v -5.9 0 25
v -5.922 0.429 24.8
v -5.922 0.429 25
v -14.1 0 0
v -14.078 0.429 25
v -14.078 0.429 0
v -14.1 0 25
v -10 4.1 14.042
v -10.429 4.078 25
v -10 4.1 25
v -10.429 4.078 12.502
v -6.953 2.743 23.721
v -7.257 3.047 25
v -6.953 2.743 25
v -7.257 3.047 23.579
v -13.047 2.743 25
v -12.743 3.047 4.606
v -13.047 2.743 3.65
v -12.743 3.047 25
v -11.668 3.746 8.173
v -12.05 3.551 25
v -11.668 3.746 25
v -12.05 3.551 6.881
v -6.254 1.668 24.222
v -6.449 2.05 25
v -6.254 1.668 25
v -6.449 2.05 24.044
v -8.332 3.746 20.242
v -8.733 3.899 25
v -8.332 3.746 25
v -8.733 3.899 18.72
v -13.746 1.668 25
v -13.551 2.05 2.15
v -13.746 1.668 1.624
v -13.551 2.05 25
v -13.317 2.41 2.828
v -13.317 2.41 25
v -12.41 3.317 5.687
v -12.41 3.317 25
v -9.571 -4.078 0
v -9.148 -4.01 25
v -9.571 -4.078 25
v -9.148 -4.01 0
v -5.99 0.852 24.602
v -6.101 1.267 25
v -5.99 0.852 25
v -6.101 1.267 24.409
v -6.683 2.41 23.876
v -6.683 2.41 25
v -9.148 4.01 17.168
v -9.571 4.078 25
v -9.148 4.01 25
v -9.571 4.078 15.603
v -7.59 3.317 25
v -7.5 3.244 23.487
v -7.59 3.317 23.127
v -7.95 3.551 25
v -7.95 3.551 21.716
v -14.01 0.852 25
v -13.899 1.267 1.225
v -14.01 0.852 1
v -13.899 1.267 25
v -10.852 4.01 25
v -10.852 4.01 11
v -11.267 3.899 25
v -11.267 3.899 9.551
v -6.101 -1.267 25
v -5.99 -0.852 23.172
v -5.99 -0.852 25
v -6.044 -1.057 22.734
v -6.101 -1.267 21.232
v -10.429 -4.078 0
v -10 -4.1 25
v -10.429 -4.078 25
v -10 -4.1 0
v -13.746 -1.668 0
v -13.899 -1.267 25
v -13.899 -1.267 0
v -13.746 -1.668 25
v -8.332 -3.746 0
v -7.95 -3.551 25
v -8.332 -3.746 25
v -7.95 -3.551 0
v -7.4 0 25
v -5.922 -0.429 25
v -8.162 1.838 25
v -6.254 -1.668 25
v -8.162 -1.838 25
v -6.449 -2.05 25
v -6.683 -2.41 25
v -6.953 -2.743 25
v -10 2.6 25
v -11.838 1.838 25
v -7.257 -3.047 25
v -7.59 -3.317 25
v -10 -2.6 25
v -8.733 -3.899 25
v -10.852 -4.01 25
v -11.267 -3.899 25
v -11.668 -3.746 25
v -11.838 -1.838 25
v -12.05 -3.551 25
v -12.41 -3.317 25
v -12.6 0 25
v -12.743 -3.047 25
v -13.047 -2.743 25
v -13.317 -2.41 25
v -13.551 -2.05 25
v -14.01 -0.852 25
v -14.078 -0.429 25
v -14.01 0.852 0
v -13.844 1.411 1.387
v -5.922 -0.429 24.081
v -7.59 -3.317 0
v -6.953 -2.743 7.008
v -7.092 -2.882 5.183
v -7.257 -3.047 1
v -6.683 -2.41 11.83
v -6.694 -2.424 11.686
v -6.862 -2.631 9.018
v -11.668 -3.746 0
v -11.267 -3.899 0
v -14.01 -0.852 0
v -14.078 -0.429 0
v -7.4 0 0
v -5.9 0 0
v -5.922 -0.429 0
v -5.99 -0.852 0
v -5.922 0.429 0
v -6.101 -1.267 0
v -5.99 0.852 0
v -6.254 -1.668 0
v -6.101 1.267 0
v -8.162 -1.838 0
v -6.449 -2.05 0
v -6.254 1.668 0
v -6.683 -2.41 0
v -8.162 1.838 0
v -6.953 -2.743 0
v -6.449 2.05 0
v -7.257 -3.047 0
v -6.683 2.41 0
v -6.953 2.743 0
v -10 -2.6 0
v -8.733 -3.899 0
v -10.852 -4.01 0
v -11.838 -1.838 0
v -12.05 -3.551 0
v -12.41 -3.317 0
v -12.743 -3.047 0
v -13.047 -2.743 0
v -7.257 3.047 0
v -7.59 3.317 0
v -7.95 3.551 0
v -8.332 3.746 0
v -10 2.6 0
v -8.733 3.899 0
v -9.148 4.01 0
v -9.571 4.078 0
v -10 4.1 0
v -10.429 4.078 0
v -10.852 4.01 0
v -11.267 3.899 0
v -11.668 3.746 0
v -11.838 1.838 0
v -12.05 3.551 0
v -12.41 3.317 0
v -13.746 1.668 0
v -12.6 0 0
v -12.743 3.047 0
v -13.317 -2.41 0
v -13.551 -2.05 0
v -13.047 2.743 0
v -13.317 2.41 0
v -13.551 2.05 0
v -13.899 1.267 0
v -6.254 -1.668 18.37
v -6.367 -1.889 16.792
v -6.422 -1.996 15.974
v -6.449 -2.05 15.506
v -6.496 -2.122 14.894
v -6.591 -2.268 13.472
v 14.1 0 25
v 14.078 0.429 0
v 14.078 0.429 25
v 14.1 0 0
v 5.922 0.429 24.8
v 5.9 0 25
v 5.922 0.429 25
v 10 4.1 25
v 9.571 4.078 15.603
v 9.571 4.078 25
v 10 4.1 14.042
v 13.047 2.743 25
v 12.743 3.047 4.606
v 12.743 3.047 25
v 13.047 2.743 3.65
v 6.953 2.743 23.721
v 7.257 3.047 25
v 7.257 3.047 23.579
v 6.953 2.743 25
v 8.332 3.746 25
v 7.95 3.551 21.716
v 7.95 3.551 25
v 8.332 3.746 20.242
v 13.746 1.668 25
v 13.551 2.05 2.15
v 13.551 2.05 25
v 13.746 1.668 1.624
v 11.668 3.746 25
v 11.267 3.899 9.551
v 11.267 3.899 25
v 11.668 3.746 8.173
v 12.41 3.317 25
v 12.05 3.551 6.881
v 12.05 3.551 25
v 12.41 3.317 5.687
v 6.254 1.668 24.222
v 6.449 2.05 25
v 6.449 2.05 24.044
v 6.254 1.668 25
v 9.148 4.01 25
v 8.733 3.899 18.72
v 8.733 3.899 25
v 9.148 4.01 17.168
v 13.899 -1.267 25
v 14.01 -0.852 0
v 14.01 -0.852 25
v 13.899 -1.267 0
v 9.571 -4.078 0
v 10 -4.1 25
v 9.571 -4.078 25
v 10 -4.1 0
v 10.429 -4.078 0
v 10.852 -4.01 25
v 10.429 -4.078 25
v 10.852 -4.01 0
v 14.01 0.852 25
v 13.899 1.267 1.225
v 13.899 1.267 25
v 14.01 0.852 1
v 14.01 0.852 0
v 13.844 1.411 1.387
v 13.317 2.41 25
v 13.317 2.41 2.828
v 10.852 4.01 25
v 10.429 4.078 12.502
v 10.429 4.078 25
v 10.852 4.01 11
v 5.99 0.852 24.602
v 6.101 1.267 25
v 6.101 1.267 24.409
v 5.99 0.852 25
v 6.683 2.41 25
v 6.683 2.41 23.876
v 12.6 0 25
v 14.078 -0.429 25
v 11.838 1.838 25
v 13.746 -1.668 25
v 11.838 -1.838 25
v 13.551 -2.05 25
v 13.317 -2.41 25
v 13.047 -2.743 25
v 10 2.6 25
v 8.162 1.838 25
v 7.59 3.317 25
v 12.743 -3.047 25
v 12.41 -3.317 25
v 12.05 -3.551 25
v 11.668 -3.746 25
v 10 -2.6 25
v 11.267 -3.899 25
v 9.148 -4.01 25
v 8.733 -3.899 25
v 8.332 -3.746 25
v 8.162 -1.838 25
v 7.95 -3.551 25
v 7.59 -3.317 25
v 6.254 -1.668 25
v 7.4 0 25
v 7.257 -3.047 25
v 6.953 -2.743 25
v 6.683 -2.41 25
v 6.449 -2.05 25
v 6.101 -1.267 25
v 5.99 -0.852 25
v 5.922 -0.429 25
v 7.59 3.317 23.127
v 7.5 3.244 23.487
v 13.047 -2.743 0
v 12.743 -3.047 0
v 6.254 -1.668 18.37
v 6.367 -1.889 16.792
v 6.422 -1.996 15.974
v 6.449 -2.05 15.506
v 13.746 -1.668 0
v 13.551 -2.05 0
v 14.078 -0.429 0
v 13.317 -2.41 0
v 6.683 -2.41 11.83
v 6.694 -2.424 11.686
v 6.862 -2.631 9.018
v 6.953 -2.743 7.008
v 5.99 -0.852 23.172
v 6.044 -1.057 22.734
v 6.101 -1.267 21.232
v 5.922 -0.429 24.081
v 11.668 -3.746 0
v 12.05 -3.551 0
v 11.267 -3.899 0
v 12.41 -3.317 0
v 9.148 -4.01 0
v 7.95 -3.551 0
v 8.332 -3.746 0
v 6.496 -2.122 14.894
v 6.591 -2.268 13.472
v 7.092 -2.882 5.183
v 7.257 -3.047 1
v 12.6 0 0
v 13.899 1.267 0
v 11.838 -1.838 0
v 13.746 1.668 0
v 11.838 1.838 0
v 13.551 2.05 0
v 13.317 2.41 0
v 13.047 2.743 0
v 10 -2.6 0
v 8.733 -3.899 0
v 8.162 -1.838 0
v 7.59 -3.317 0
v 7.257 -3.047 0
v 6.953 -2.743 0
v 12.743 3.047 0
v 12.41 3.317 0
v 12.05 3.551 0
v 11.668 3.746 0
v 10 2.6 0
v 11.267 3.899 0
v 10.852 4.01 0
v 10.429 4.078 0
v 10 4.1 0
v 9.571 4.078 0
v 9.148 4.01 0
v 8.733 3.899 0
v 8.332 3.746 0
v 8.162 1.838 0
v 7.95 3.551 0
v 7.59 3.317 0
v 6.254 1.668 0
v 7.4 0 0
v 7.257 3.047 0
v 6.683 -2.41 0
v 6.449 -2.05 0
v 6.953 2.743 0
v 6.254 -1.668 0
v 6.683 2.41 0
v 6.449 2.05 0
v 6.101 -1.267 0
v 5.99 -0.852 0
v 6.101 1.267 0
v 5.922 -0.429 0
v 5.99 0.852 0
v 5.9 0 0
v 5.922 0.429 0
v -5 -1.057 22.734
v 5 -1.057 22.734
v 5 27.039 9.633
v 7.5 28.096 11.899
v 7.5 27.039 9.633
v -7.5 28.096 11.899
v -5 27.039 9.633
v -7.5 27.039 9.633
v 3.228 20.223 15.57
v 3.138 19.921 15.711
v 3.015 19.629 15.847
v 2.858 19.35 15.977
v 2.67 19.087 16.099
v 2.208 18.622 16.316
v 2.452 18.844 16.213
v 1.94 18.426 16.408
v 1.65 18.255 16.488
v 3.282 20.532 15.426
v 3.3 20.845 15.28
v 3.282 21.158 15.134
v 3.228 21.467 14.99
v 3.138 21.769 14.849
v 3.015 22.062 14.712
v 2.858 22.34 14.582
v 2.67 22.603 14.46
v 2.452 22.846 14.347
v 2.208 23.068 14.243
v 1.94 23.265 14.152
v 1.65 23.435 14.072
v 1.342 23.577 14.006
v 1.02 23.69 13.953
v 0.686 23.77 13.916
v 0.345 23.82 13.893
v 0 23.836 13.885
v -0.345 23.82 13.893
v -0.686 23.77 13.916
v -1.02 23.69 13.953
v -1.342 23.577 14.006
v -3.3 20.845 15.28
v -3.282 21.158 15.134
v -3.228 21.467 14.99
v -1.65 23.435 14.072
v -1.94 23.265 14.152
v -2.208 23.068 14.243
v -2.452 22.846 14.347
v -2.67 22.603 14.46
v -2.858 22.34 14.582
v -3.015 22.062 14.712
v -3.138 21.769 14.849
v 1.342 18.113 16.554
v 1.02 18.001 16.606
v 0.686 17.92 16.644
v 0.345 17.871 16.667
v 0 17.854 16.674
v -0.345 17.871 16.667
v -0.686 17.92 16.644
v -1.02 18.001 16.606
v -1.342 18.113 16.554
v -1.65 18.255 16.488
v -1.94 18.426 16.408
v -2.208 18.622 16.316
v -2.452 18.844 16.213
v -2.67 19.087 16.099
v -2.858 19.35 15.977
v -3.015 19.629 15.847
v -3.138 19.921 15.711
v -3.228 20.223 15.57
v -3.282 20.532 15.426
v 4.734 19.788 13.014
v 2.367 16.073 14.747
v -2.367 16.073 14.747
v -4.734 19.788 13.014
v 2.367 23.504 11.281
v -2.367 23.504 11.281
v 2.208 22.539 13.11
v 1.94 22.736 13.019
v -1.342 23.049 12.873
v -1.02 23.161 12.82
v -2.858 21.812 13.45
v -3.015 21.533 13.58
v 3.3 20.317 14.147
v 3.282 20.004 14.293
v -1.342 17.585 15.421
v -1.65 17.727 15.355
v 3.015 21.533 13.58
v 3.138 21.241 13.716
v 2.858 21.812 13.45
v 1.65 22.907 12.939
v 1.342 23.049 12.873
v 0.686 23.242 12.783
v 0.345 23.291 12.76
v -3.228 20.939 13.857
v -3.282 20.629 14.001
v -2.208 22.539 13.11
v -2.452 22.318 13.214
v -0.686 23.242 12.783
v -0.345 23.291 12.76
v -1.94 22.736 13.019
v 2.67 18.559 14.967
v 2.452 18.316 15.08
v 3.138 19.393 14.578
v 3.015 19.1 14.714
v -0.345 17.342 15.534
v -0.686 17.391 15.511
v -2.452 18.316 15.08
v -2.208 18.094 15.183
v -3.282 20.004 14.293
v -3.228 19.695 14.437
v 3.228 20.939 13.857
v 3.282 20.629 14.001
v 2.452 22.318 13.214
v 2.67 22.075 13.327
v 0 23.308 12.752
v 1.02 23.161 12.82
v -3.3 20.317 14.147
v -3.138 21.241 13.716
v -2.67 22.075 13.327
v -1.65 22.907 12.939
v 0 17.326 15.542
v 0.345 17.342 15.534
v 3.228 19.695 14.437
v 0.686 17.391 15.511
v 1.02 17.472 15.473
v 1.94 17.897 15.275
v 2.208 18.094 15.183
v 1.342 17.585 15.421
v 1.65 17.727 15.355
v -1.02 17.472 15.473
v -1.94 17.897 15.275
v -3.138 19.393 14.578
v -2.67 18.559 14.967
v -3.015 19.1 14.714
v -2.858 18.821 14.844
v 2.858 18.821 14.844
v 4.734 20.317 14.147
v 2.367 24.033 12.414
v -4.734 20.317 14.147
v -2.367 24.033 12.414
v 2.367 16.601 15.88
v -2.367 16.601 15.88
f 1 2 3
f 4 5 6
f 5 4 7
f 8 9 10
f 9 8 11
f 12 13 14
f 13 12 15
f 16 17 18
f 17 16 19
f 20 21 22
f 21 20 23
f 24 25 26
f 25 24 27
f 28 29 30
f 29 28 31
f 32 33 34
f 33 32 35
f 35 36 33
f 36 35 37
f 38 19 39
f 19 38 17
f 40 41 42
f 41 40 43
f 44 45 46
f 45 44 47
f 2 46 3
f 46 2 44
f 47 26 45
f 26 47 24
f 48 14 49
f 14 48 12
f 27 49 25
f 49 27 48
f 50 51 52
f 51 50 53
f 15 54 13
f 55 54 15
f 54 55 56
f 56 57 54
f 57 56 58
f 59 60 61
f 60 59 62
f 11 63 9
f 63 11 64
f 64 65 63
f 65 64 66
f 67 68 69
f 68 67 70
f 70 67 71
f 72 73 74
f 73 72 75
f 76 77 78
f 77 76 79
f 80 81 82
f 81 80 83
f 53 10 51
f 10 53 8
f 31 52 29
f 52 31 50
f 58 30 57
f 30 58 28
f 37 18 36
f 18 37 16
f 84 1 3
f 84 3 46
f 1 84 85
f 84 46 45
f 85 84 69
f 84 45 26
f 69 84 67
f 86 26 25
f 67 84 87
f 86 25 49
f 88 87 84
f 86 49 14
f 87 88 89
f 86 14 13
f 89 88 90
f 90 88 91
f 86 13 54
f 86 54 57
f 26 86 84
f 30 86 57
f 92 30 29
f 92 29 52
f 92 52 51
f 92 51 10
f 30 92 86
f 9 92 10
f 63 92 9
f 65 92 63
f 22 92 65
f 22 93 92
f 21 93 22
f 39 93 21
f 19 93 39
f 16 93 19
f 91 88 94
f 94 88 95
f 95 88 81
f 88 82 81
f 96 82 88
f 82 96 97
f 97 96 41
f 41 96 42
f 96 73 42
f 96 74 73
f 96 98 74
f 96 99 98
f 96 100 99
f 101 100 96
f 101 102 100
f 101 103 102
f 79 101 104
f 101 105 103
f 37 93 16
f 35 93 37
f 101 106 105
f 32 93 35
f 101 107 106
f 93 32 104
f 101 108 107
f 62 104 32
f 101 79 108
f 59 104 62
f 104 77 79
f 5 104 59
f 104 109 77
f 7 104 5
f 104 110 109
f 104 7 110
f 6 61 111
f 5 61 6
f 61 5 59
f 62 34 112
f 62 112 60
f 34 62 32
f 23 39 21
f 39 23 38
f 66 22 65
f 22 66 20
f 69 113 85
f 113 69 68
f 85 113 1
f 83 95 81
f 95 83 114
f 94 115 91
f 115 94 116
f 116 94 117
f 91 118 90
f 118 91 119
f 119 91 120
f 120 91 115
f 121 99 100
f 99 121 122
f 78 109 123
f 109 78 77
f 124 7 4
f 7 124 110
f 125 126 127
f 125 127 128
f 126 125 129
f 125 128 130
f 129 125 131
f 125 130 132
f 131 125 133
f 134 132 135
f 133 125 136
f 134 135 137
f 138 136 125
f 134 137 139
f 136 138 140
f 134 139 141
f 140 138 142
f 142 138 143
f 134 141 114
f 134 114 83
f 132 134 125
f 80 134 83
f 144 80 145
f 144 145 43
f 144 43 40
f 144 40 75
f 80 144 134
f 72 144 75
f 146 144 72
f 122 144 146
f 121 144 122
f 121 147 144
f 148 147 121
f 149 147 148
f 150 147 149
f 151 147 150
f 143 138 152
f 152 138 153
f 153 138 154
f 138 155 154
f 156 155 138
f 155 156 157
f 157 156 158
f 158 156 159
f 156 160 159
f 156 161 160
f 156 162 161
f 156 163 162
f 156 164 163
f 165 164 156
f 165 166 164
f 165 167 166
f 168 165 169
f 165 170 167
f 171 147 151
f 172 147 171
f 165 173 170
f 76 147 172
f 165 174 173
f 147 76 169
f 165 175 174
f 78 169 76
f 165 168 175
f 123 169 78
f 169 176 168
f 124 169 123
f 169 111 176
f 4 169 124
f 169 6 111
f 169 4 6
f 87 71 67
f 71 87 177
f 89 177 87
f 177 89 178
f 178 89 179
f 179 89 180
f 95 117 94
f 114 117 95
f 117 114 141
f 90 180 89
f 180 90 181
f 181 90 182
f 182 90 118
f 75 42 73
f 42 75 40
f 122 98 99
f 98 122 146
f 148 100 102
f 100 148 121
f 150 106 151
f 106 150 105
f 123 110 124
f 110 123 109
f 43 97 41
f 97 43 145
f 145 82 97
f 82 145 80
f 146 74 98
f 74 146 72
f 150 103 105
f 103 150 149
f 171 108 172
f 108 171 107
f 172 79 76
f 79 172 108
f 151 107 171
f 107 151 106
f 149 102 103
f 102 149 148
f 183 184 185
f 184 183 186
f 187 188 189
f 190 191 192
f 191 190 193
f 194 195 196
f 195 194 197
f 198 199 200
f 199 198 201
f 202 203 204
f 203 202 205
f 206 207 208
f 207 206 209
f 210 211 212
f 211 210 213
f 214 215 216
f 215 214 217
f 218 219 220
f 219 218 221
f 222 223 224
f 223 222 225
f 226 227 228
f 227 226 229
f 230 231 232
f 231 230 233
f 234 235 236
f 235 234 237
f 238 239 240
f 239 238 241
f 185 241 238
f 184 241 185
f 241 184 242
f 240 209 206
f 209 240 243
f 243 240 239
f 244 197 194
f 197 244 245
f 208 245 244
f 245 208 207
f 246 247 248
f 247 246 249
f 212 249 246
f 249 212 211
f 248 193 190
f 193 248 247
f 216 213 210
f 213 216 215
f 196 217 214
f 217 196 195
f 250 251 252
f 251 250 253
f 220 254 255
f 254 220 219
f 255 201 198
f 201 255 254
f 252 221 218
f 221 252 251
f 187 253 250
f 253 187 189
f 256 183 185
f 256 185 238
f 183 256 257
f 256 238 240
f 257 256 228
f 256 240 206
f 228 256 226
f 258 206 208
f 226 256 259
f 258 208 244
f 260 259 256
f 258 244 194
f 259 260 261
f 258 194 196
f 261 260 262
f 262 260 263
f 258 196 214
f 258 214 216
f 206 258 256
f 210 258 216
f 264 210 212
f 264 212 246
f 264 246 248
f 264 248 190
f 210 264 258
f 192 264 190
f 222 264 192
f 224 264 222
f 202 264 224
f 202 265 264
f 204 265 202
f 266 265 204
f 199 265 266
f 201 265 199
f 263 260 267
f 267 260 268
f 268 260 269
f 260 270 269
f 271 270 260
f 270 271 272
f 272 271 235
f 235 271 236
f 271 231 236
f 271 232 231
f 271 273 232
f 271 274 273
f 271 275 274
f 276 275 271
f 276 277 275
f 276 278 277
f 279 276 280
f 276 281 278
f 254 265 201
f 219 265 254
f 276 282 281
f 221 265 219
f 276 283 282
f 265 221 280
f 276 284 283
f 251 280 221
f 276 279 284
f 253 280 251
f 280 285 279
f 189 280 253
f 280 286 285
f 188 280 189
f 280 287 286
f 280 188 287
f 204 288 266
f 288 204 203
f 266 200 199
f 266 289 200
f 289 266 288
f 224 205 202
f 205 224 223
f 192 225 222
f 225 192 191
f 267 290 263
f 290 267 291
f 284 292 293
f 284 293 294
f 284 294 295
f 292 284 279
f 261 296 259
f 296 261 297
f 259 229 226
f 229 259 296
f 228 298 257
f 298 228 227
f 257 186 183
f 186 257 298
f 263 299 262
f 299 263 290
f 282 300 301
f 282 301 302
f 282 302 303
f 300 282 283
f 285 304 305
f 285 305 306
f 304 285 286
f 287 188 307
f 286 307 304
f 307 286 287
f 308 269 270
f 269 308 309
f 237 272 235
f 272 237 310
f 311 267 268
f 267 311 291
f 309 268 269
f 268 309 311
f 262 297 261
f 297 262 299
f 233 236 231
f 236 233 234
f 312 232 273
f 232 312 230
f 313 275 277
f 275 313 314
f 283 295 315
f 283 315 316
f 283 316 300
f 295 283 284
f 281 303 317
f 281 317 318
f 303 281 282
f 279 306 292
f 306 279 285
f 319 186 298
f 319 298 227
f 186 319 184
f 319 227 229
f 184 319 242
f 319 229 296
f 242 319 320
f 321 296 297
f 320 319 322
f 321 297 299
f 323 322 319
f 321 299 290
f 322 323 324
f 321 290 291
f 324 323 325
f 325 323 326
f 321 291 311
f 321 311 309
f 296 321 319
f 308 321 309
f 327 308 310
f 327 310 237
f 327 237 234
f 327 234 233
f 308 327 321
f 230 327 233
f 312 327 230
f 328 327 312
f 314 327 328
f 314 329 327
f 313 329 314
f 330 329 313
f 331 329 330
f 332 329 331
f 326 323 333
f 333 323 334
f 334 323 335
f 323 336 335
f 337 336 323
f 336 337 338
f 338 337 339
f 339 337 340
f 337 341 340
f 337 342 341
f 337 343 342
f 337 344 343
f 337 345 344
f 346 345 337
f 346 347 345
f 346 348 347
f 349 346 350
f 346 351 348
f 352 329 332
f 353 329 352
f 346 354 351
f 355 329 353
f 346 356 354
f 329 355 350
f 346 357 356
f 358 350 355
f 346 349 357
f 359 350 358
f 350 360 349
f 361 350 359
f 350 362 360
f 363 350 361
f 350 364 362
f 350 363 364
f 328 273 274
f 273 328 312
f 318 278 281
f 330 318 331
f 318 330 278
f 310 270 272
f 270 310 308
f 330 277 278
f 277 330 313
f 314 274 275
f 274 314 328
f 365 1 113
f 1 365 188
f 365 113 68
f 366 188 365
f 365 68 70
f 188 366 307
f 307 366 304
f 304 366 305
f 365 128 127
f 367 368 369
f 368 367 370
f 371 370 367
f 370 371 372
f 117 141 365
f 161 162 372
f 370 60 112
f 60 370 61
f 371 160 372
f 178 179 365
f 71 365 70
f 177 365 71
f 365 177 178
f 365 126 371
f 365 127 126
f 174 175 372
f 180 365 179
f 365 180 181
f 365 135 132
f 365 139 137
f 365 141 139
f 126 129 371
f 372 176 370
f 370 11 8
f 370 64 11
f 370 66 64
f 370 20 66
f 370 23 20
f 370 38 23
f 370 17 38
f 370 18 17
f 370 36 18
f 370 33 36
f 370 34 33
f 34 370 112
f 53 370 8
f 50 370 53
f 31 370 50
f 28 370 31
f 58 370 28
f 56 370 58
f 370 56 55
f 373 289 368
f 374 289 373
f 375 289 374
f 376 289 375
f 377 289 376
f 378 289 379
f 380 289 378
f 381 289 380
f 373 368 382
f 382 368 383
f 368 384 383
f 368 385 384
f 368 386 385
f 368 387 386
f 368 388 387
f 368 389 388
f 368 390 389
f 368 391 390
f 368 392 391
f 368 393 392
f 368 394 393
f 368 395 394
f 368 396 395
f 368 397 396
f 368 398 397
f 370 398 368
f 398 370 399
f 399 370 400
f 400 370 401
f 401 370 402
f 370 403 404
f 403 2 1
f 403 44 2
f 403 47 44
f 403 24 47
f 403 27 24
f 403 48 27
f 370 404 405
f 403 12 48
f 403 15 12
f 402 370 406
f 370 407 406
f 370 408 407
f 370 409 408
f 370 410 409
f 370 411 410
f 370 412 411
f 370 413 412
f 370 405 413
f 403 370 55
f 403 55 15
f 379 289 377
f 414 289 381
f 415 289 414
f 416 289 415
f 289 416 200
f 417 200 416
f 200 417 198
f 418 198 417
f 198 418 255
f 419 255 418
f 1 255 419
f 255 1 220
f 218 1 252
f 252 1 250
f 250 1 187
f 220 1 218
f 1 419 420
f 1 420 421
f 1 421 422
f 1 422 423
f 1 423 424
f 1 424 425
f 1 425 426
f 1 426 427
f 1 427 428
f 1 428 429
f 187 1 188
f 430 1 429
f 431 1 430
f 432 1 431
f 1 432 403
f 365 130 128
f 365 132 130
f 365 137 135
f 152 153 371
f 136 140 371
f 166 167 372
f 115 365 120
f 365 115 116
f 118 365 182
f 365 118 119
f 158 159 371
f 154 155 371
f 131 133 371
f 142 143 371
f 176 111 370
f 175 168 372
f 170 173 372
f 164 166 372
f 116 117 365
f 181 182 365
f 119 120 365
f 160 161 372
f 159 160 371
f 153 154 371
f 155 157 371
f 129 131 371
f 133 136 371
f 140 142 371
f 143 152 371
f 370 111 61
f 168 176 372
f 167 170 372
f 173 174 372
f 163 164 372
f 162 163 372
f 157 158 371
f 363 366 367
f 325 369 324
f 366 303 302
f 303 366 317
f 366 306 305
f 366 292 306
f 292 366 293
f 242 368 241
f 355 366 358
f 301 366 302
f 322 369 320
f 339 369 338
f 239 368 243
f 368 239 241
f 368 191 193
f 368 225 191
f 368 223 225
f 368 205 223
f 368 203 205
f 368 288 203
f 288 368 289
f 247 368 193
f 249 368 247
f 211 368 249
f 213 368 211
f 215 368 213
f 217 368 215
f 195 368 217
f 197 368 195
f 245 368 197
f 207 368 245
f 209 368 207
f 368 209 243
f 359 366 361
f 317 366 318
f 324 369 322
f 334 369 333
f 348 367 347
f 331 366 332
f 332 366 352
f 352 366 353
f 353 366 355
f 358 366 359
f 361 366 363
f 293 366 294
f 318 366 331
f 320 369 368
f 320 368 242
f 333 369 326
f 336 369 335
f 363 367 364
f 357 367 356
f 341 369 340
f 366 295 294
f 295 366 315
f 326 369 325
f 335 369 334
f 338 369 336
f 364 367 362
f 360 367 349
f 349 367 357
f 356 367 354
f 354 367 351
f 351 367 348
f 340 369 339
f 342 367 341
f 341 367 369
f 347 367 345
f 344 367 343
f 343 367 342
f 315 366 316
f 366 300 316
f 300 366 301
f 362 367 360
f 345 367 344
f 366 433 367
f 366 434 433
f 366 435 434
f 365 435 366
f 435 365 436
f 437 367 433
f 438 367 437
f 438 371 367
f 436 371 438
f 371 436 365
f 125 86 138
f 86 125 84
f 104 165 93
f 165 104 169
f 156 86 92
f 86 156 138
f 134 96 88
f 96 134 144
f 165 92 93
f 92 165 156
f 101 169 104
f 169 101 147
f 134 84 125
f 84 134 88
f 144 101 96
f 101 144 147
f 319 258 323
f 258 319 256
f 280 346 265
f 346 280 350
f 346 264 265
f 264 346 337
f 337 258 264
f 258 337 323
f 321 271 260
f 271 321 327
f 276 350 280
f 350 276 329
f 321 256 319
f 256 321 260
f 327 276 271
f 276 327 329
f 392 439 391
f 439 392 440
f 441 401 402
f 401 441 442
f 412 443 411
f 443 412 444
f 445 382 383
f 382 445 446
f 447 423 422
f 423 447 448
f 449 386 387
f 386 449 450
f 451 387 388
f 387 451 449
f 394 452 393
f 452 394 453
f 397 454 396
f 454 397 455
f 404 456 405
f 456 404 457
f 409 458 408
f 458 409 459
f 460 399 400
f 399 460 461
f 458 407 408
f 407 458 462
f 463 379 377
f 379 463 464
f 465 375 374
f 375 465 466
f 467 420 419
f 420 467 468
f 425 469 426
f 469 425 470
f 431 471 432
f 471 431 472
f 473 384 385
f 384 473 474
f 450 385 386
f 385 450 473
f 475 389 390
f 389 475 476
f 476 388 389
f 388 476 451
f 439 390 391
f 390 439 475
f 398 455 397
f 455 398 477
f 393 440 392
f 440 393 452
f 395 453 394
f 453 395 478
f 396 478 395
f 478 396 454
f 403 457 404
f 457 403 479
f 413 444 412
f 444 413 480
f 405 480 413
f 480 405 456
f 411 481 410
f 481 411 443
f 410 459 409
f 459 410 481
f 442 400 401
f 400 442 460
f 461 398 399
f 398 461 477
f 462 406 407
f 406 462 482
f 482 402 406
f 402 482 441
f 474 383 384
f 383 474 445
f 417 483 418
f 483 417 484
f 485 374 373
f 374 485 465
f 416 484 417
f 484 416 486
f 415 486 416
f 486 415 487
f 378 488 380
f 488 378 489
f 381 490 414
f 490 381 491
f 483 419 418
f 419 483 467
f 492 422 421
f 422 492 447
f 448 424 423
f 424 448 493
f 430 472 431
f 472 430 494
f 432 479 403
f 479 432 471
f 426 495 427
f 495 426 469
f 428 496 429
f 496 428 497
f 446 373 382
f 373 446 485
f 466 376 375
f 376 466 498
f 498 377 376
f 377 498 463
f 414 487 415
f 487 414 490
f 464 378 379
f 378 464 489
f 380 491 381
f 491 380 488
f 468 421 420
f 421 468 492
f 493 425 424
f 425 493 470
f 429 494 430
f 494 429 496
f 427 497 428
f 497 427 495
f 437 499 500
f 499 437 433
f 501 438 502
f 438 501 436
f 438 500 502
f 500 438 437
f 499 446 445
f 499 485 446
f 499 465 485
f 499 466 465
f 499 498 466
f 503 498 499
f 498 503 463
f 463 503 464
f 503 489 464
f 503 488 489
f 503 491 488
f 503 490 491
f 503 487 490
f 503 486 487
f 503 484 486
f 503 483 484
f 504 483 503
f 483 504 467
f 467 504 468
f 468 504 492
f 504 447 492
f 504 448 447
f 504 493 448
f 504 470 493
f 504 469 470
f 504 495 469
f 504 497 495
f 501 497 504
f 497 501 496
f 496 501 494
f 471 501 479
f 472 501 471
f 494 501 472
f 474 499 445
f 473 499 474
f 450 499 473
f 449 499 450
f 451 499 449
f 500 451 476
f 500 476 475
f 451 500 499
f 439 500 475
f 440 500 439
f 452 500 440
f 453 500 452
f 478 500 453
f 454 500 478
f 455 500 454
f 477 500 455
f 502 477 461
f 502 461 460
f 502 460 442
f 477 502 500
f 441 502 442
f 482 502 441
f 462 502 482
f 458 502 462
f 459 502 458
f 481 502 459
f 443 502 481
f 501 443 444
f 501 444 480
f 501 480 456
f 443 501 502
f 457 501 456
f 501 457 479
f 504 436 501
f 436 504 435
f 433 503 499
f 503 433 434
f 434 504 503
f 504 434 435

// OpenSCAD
// =============================================================================
// PROJECT: UNIVERSAL FPV SMA STANDOFF MOUNT
// VERSION: 4.0 (Final Parametric Library Version)
// DESCRIPTION: A support-free, TPU-optimized mount that slides over rear 
//              frame standoffs. Designed for SMA Bulkhead fittings.
// =============================================================================

/* [Frame Physical Dimensions] */
// Center-to-center distance between your rear standoffs (mm)
standoff_dist   = 20.0;  
// Diameter of your standoffs (Standard M3 is usually 5.0 to 5.5mm)
standoff_dia    = 5.0;   
// Height of standoffs (Distance between bottom and top plates)
standoff_height = 25.0;  
// Thickness of the TPU walls around the standoffs
wall_thickness  = 1.6;   
// Adjustment for fit (Negative values make the hole tighter for TPU "grip")
fit_tolerance   = 0.2;  

/* [Antenna Platform Settings] */
// Angle of the antenna tilted back from vertical (Degrees)
antenna_angle   = 25;    
// Distance from the front edge of the mount to the center of the SMA hole
platform_offset = 23.0;  
// Width of the rectangular mounting surface
platform_w      = 15.0;  
// Extra material behind the hole for crash durability (mm)
platform_padding = 8.0;  
// Thickness of the mounting plate (2.5mm is ideal for Bulkhead threads)
mounting_thick  = 2.5;   

/* [Hardware Specifications] */
// Diameter for the threaded SMA barrel (6.4mm - 6.6mm is standard)
sma_hole_dia    = 6.6;   
// Hex nut flat-to-flat size (8.0mm - 8.2mm is standard)
sma_hex_flat    = 8.2;   
// Thickness of the "Shoulder" that the nut presses against
shoulder_thick  = 1.25; 

/* [Internal Math - Do Not Change] */
$fn = 60; // Smoothness of circles
platform_l = platform_offset + platform_padding; // Total plate length

// =============================================================================
// RENDER LOGIC
// =============================================================================

difference() {
    // --- STEP 1: CREATE THE SOLID BODY ---
    union() {
        // Create the left and right standoff sleeves
        for(i=[-1, 1]) {
            translate([i * standoff_dist/2, 0, 0])
                cylinder(h=standoff_height, d=standoff_dia + (wall_thickness*2));
        }

        // Create the Mounting Platform (Angled Rectangle)
        // Positioned flush at (0,0,standoff_height)
        translate([0, 0, standoff_height]) 
            rotate([-antenna_angle, 0, 0])
                translate([-platform_w/2, 0, -mounting_thick]) 
                    cube([platform_w, platform_l, mounting_thick]);

        // Create the Structural Rib Trusses (Reinforcing Ramps)
        for(i=[-1, 1]) {
            hull() {
                // Top Anchor: Locked to the side face of the angled plate
                translate([0, 0, standoff_height]) 
                    rotate([-antenna_angle, 0, 0])
                        translate([i * (platform_w/2 - 1.25), platform_l/2, -mounting_thick/2])
                            cube([2.5, platform_l, mounting_thick], center=true);
                
                // Bottom Anchor: Flared base at the bottom of the sleeve
                translate([i * standoff_dist/2, 0, 0])
                    cylinder(h=1, d=standoff_dia + (wall_thickness*2));
            }
        }
    }

    // --- STEP 2: CARVE THE HOLES ---
    
    // Standoff Holes (Rendered as Octagons for better TPU friction/grip)
    for(i=[-1, 1]) {
        translate([i * standoff_dist/2, 0, -1])
            cylinder(h=standoff_height + 2, d=standoff_dia + fit_tolerance, $fn=8);
    }
    
    // The SMA Connector Stack (Hole + Hex Socket)
    translate([0, 0, standoff_height])
        rotate([-antenna_angle, 0, 0])
            translate([0, platform_offset, 0]) {
                
                // 1. Thread Path: Small hole going completely through the plate
                translate([0, 0, -50])
                    cylinder(h=55, d=sma_hole_dia);
                
                // 2. Hex Trap: Large 6-sided socket for the bulkhead base
                // Calculated to leave exactly 'shoulder_thick' of material on top
                translate([0, 0, -50]) 
                    cylinder(h=50 - shoulder_thick, d=sma_hex_flat / cos(30), $fn=6);
            }
}
